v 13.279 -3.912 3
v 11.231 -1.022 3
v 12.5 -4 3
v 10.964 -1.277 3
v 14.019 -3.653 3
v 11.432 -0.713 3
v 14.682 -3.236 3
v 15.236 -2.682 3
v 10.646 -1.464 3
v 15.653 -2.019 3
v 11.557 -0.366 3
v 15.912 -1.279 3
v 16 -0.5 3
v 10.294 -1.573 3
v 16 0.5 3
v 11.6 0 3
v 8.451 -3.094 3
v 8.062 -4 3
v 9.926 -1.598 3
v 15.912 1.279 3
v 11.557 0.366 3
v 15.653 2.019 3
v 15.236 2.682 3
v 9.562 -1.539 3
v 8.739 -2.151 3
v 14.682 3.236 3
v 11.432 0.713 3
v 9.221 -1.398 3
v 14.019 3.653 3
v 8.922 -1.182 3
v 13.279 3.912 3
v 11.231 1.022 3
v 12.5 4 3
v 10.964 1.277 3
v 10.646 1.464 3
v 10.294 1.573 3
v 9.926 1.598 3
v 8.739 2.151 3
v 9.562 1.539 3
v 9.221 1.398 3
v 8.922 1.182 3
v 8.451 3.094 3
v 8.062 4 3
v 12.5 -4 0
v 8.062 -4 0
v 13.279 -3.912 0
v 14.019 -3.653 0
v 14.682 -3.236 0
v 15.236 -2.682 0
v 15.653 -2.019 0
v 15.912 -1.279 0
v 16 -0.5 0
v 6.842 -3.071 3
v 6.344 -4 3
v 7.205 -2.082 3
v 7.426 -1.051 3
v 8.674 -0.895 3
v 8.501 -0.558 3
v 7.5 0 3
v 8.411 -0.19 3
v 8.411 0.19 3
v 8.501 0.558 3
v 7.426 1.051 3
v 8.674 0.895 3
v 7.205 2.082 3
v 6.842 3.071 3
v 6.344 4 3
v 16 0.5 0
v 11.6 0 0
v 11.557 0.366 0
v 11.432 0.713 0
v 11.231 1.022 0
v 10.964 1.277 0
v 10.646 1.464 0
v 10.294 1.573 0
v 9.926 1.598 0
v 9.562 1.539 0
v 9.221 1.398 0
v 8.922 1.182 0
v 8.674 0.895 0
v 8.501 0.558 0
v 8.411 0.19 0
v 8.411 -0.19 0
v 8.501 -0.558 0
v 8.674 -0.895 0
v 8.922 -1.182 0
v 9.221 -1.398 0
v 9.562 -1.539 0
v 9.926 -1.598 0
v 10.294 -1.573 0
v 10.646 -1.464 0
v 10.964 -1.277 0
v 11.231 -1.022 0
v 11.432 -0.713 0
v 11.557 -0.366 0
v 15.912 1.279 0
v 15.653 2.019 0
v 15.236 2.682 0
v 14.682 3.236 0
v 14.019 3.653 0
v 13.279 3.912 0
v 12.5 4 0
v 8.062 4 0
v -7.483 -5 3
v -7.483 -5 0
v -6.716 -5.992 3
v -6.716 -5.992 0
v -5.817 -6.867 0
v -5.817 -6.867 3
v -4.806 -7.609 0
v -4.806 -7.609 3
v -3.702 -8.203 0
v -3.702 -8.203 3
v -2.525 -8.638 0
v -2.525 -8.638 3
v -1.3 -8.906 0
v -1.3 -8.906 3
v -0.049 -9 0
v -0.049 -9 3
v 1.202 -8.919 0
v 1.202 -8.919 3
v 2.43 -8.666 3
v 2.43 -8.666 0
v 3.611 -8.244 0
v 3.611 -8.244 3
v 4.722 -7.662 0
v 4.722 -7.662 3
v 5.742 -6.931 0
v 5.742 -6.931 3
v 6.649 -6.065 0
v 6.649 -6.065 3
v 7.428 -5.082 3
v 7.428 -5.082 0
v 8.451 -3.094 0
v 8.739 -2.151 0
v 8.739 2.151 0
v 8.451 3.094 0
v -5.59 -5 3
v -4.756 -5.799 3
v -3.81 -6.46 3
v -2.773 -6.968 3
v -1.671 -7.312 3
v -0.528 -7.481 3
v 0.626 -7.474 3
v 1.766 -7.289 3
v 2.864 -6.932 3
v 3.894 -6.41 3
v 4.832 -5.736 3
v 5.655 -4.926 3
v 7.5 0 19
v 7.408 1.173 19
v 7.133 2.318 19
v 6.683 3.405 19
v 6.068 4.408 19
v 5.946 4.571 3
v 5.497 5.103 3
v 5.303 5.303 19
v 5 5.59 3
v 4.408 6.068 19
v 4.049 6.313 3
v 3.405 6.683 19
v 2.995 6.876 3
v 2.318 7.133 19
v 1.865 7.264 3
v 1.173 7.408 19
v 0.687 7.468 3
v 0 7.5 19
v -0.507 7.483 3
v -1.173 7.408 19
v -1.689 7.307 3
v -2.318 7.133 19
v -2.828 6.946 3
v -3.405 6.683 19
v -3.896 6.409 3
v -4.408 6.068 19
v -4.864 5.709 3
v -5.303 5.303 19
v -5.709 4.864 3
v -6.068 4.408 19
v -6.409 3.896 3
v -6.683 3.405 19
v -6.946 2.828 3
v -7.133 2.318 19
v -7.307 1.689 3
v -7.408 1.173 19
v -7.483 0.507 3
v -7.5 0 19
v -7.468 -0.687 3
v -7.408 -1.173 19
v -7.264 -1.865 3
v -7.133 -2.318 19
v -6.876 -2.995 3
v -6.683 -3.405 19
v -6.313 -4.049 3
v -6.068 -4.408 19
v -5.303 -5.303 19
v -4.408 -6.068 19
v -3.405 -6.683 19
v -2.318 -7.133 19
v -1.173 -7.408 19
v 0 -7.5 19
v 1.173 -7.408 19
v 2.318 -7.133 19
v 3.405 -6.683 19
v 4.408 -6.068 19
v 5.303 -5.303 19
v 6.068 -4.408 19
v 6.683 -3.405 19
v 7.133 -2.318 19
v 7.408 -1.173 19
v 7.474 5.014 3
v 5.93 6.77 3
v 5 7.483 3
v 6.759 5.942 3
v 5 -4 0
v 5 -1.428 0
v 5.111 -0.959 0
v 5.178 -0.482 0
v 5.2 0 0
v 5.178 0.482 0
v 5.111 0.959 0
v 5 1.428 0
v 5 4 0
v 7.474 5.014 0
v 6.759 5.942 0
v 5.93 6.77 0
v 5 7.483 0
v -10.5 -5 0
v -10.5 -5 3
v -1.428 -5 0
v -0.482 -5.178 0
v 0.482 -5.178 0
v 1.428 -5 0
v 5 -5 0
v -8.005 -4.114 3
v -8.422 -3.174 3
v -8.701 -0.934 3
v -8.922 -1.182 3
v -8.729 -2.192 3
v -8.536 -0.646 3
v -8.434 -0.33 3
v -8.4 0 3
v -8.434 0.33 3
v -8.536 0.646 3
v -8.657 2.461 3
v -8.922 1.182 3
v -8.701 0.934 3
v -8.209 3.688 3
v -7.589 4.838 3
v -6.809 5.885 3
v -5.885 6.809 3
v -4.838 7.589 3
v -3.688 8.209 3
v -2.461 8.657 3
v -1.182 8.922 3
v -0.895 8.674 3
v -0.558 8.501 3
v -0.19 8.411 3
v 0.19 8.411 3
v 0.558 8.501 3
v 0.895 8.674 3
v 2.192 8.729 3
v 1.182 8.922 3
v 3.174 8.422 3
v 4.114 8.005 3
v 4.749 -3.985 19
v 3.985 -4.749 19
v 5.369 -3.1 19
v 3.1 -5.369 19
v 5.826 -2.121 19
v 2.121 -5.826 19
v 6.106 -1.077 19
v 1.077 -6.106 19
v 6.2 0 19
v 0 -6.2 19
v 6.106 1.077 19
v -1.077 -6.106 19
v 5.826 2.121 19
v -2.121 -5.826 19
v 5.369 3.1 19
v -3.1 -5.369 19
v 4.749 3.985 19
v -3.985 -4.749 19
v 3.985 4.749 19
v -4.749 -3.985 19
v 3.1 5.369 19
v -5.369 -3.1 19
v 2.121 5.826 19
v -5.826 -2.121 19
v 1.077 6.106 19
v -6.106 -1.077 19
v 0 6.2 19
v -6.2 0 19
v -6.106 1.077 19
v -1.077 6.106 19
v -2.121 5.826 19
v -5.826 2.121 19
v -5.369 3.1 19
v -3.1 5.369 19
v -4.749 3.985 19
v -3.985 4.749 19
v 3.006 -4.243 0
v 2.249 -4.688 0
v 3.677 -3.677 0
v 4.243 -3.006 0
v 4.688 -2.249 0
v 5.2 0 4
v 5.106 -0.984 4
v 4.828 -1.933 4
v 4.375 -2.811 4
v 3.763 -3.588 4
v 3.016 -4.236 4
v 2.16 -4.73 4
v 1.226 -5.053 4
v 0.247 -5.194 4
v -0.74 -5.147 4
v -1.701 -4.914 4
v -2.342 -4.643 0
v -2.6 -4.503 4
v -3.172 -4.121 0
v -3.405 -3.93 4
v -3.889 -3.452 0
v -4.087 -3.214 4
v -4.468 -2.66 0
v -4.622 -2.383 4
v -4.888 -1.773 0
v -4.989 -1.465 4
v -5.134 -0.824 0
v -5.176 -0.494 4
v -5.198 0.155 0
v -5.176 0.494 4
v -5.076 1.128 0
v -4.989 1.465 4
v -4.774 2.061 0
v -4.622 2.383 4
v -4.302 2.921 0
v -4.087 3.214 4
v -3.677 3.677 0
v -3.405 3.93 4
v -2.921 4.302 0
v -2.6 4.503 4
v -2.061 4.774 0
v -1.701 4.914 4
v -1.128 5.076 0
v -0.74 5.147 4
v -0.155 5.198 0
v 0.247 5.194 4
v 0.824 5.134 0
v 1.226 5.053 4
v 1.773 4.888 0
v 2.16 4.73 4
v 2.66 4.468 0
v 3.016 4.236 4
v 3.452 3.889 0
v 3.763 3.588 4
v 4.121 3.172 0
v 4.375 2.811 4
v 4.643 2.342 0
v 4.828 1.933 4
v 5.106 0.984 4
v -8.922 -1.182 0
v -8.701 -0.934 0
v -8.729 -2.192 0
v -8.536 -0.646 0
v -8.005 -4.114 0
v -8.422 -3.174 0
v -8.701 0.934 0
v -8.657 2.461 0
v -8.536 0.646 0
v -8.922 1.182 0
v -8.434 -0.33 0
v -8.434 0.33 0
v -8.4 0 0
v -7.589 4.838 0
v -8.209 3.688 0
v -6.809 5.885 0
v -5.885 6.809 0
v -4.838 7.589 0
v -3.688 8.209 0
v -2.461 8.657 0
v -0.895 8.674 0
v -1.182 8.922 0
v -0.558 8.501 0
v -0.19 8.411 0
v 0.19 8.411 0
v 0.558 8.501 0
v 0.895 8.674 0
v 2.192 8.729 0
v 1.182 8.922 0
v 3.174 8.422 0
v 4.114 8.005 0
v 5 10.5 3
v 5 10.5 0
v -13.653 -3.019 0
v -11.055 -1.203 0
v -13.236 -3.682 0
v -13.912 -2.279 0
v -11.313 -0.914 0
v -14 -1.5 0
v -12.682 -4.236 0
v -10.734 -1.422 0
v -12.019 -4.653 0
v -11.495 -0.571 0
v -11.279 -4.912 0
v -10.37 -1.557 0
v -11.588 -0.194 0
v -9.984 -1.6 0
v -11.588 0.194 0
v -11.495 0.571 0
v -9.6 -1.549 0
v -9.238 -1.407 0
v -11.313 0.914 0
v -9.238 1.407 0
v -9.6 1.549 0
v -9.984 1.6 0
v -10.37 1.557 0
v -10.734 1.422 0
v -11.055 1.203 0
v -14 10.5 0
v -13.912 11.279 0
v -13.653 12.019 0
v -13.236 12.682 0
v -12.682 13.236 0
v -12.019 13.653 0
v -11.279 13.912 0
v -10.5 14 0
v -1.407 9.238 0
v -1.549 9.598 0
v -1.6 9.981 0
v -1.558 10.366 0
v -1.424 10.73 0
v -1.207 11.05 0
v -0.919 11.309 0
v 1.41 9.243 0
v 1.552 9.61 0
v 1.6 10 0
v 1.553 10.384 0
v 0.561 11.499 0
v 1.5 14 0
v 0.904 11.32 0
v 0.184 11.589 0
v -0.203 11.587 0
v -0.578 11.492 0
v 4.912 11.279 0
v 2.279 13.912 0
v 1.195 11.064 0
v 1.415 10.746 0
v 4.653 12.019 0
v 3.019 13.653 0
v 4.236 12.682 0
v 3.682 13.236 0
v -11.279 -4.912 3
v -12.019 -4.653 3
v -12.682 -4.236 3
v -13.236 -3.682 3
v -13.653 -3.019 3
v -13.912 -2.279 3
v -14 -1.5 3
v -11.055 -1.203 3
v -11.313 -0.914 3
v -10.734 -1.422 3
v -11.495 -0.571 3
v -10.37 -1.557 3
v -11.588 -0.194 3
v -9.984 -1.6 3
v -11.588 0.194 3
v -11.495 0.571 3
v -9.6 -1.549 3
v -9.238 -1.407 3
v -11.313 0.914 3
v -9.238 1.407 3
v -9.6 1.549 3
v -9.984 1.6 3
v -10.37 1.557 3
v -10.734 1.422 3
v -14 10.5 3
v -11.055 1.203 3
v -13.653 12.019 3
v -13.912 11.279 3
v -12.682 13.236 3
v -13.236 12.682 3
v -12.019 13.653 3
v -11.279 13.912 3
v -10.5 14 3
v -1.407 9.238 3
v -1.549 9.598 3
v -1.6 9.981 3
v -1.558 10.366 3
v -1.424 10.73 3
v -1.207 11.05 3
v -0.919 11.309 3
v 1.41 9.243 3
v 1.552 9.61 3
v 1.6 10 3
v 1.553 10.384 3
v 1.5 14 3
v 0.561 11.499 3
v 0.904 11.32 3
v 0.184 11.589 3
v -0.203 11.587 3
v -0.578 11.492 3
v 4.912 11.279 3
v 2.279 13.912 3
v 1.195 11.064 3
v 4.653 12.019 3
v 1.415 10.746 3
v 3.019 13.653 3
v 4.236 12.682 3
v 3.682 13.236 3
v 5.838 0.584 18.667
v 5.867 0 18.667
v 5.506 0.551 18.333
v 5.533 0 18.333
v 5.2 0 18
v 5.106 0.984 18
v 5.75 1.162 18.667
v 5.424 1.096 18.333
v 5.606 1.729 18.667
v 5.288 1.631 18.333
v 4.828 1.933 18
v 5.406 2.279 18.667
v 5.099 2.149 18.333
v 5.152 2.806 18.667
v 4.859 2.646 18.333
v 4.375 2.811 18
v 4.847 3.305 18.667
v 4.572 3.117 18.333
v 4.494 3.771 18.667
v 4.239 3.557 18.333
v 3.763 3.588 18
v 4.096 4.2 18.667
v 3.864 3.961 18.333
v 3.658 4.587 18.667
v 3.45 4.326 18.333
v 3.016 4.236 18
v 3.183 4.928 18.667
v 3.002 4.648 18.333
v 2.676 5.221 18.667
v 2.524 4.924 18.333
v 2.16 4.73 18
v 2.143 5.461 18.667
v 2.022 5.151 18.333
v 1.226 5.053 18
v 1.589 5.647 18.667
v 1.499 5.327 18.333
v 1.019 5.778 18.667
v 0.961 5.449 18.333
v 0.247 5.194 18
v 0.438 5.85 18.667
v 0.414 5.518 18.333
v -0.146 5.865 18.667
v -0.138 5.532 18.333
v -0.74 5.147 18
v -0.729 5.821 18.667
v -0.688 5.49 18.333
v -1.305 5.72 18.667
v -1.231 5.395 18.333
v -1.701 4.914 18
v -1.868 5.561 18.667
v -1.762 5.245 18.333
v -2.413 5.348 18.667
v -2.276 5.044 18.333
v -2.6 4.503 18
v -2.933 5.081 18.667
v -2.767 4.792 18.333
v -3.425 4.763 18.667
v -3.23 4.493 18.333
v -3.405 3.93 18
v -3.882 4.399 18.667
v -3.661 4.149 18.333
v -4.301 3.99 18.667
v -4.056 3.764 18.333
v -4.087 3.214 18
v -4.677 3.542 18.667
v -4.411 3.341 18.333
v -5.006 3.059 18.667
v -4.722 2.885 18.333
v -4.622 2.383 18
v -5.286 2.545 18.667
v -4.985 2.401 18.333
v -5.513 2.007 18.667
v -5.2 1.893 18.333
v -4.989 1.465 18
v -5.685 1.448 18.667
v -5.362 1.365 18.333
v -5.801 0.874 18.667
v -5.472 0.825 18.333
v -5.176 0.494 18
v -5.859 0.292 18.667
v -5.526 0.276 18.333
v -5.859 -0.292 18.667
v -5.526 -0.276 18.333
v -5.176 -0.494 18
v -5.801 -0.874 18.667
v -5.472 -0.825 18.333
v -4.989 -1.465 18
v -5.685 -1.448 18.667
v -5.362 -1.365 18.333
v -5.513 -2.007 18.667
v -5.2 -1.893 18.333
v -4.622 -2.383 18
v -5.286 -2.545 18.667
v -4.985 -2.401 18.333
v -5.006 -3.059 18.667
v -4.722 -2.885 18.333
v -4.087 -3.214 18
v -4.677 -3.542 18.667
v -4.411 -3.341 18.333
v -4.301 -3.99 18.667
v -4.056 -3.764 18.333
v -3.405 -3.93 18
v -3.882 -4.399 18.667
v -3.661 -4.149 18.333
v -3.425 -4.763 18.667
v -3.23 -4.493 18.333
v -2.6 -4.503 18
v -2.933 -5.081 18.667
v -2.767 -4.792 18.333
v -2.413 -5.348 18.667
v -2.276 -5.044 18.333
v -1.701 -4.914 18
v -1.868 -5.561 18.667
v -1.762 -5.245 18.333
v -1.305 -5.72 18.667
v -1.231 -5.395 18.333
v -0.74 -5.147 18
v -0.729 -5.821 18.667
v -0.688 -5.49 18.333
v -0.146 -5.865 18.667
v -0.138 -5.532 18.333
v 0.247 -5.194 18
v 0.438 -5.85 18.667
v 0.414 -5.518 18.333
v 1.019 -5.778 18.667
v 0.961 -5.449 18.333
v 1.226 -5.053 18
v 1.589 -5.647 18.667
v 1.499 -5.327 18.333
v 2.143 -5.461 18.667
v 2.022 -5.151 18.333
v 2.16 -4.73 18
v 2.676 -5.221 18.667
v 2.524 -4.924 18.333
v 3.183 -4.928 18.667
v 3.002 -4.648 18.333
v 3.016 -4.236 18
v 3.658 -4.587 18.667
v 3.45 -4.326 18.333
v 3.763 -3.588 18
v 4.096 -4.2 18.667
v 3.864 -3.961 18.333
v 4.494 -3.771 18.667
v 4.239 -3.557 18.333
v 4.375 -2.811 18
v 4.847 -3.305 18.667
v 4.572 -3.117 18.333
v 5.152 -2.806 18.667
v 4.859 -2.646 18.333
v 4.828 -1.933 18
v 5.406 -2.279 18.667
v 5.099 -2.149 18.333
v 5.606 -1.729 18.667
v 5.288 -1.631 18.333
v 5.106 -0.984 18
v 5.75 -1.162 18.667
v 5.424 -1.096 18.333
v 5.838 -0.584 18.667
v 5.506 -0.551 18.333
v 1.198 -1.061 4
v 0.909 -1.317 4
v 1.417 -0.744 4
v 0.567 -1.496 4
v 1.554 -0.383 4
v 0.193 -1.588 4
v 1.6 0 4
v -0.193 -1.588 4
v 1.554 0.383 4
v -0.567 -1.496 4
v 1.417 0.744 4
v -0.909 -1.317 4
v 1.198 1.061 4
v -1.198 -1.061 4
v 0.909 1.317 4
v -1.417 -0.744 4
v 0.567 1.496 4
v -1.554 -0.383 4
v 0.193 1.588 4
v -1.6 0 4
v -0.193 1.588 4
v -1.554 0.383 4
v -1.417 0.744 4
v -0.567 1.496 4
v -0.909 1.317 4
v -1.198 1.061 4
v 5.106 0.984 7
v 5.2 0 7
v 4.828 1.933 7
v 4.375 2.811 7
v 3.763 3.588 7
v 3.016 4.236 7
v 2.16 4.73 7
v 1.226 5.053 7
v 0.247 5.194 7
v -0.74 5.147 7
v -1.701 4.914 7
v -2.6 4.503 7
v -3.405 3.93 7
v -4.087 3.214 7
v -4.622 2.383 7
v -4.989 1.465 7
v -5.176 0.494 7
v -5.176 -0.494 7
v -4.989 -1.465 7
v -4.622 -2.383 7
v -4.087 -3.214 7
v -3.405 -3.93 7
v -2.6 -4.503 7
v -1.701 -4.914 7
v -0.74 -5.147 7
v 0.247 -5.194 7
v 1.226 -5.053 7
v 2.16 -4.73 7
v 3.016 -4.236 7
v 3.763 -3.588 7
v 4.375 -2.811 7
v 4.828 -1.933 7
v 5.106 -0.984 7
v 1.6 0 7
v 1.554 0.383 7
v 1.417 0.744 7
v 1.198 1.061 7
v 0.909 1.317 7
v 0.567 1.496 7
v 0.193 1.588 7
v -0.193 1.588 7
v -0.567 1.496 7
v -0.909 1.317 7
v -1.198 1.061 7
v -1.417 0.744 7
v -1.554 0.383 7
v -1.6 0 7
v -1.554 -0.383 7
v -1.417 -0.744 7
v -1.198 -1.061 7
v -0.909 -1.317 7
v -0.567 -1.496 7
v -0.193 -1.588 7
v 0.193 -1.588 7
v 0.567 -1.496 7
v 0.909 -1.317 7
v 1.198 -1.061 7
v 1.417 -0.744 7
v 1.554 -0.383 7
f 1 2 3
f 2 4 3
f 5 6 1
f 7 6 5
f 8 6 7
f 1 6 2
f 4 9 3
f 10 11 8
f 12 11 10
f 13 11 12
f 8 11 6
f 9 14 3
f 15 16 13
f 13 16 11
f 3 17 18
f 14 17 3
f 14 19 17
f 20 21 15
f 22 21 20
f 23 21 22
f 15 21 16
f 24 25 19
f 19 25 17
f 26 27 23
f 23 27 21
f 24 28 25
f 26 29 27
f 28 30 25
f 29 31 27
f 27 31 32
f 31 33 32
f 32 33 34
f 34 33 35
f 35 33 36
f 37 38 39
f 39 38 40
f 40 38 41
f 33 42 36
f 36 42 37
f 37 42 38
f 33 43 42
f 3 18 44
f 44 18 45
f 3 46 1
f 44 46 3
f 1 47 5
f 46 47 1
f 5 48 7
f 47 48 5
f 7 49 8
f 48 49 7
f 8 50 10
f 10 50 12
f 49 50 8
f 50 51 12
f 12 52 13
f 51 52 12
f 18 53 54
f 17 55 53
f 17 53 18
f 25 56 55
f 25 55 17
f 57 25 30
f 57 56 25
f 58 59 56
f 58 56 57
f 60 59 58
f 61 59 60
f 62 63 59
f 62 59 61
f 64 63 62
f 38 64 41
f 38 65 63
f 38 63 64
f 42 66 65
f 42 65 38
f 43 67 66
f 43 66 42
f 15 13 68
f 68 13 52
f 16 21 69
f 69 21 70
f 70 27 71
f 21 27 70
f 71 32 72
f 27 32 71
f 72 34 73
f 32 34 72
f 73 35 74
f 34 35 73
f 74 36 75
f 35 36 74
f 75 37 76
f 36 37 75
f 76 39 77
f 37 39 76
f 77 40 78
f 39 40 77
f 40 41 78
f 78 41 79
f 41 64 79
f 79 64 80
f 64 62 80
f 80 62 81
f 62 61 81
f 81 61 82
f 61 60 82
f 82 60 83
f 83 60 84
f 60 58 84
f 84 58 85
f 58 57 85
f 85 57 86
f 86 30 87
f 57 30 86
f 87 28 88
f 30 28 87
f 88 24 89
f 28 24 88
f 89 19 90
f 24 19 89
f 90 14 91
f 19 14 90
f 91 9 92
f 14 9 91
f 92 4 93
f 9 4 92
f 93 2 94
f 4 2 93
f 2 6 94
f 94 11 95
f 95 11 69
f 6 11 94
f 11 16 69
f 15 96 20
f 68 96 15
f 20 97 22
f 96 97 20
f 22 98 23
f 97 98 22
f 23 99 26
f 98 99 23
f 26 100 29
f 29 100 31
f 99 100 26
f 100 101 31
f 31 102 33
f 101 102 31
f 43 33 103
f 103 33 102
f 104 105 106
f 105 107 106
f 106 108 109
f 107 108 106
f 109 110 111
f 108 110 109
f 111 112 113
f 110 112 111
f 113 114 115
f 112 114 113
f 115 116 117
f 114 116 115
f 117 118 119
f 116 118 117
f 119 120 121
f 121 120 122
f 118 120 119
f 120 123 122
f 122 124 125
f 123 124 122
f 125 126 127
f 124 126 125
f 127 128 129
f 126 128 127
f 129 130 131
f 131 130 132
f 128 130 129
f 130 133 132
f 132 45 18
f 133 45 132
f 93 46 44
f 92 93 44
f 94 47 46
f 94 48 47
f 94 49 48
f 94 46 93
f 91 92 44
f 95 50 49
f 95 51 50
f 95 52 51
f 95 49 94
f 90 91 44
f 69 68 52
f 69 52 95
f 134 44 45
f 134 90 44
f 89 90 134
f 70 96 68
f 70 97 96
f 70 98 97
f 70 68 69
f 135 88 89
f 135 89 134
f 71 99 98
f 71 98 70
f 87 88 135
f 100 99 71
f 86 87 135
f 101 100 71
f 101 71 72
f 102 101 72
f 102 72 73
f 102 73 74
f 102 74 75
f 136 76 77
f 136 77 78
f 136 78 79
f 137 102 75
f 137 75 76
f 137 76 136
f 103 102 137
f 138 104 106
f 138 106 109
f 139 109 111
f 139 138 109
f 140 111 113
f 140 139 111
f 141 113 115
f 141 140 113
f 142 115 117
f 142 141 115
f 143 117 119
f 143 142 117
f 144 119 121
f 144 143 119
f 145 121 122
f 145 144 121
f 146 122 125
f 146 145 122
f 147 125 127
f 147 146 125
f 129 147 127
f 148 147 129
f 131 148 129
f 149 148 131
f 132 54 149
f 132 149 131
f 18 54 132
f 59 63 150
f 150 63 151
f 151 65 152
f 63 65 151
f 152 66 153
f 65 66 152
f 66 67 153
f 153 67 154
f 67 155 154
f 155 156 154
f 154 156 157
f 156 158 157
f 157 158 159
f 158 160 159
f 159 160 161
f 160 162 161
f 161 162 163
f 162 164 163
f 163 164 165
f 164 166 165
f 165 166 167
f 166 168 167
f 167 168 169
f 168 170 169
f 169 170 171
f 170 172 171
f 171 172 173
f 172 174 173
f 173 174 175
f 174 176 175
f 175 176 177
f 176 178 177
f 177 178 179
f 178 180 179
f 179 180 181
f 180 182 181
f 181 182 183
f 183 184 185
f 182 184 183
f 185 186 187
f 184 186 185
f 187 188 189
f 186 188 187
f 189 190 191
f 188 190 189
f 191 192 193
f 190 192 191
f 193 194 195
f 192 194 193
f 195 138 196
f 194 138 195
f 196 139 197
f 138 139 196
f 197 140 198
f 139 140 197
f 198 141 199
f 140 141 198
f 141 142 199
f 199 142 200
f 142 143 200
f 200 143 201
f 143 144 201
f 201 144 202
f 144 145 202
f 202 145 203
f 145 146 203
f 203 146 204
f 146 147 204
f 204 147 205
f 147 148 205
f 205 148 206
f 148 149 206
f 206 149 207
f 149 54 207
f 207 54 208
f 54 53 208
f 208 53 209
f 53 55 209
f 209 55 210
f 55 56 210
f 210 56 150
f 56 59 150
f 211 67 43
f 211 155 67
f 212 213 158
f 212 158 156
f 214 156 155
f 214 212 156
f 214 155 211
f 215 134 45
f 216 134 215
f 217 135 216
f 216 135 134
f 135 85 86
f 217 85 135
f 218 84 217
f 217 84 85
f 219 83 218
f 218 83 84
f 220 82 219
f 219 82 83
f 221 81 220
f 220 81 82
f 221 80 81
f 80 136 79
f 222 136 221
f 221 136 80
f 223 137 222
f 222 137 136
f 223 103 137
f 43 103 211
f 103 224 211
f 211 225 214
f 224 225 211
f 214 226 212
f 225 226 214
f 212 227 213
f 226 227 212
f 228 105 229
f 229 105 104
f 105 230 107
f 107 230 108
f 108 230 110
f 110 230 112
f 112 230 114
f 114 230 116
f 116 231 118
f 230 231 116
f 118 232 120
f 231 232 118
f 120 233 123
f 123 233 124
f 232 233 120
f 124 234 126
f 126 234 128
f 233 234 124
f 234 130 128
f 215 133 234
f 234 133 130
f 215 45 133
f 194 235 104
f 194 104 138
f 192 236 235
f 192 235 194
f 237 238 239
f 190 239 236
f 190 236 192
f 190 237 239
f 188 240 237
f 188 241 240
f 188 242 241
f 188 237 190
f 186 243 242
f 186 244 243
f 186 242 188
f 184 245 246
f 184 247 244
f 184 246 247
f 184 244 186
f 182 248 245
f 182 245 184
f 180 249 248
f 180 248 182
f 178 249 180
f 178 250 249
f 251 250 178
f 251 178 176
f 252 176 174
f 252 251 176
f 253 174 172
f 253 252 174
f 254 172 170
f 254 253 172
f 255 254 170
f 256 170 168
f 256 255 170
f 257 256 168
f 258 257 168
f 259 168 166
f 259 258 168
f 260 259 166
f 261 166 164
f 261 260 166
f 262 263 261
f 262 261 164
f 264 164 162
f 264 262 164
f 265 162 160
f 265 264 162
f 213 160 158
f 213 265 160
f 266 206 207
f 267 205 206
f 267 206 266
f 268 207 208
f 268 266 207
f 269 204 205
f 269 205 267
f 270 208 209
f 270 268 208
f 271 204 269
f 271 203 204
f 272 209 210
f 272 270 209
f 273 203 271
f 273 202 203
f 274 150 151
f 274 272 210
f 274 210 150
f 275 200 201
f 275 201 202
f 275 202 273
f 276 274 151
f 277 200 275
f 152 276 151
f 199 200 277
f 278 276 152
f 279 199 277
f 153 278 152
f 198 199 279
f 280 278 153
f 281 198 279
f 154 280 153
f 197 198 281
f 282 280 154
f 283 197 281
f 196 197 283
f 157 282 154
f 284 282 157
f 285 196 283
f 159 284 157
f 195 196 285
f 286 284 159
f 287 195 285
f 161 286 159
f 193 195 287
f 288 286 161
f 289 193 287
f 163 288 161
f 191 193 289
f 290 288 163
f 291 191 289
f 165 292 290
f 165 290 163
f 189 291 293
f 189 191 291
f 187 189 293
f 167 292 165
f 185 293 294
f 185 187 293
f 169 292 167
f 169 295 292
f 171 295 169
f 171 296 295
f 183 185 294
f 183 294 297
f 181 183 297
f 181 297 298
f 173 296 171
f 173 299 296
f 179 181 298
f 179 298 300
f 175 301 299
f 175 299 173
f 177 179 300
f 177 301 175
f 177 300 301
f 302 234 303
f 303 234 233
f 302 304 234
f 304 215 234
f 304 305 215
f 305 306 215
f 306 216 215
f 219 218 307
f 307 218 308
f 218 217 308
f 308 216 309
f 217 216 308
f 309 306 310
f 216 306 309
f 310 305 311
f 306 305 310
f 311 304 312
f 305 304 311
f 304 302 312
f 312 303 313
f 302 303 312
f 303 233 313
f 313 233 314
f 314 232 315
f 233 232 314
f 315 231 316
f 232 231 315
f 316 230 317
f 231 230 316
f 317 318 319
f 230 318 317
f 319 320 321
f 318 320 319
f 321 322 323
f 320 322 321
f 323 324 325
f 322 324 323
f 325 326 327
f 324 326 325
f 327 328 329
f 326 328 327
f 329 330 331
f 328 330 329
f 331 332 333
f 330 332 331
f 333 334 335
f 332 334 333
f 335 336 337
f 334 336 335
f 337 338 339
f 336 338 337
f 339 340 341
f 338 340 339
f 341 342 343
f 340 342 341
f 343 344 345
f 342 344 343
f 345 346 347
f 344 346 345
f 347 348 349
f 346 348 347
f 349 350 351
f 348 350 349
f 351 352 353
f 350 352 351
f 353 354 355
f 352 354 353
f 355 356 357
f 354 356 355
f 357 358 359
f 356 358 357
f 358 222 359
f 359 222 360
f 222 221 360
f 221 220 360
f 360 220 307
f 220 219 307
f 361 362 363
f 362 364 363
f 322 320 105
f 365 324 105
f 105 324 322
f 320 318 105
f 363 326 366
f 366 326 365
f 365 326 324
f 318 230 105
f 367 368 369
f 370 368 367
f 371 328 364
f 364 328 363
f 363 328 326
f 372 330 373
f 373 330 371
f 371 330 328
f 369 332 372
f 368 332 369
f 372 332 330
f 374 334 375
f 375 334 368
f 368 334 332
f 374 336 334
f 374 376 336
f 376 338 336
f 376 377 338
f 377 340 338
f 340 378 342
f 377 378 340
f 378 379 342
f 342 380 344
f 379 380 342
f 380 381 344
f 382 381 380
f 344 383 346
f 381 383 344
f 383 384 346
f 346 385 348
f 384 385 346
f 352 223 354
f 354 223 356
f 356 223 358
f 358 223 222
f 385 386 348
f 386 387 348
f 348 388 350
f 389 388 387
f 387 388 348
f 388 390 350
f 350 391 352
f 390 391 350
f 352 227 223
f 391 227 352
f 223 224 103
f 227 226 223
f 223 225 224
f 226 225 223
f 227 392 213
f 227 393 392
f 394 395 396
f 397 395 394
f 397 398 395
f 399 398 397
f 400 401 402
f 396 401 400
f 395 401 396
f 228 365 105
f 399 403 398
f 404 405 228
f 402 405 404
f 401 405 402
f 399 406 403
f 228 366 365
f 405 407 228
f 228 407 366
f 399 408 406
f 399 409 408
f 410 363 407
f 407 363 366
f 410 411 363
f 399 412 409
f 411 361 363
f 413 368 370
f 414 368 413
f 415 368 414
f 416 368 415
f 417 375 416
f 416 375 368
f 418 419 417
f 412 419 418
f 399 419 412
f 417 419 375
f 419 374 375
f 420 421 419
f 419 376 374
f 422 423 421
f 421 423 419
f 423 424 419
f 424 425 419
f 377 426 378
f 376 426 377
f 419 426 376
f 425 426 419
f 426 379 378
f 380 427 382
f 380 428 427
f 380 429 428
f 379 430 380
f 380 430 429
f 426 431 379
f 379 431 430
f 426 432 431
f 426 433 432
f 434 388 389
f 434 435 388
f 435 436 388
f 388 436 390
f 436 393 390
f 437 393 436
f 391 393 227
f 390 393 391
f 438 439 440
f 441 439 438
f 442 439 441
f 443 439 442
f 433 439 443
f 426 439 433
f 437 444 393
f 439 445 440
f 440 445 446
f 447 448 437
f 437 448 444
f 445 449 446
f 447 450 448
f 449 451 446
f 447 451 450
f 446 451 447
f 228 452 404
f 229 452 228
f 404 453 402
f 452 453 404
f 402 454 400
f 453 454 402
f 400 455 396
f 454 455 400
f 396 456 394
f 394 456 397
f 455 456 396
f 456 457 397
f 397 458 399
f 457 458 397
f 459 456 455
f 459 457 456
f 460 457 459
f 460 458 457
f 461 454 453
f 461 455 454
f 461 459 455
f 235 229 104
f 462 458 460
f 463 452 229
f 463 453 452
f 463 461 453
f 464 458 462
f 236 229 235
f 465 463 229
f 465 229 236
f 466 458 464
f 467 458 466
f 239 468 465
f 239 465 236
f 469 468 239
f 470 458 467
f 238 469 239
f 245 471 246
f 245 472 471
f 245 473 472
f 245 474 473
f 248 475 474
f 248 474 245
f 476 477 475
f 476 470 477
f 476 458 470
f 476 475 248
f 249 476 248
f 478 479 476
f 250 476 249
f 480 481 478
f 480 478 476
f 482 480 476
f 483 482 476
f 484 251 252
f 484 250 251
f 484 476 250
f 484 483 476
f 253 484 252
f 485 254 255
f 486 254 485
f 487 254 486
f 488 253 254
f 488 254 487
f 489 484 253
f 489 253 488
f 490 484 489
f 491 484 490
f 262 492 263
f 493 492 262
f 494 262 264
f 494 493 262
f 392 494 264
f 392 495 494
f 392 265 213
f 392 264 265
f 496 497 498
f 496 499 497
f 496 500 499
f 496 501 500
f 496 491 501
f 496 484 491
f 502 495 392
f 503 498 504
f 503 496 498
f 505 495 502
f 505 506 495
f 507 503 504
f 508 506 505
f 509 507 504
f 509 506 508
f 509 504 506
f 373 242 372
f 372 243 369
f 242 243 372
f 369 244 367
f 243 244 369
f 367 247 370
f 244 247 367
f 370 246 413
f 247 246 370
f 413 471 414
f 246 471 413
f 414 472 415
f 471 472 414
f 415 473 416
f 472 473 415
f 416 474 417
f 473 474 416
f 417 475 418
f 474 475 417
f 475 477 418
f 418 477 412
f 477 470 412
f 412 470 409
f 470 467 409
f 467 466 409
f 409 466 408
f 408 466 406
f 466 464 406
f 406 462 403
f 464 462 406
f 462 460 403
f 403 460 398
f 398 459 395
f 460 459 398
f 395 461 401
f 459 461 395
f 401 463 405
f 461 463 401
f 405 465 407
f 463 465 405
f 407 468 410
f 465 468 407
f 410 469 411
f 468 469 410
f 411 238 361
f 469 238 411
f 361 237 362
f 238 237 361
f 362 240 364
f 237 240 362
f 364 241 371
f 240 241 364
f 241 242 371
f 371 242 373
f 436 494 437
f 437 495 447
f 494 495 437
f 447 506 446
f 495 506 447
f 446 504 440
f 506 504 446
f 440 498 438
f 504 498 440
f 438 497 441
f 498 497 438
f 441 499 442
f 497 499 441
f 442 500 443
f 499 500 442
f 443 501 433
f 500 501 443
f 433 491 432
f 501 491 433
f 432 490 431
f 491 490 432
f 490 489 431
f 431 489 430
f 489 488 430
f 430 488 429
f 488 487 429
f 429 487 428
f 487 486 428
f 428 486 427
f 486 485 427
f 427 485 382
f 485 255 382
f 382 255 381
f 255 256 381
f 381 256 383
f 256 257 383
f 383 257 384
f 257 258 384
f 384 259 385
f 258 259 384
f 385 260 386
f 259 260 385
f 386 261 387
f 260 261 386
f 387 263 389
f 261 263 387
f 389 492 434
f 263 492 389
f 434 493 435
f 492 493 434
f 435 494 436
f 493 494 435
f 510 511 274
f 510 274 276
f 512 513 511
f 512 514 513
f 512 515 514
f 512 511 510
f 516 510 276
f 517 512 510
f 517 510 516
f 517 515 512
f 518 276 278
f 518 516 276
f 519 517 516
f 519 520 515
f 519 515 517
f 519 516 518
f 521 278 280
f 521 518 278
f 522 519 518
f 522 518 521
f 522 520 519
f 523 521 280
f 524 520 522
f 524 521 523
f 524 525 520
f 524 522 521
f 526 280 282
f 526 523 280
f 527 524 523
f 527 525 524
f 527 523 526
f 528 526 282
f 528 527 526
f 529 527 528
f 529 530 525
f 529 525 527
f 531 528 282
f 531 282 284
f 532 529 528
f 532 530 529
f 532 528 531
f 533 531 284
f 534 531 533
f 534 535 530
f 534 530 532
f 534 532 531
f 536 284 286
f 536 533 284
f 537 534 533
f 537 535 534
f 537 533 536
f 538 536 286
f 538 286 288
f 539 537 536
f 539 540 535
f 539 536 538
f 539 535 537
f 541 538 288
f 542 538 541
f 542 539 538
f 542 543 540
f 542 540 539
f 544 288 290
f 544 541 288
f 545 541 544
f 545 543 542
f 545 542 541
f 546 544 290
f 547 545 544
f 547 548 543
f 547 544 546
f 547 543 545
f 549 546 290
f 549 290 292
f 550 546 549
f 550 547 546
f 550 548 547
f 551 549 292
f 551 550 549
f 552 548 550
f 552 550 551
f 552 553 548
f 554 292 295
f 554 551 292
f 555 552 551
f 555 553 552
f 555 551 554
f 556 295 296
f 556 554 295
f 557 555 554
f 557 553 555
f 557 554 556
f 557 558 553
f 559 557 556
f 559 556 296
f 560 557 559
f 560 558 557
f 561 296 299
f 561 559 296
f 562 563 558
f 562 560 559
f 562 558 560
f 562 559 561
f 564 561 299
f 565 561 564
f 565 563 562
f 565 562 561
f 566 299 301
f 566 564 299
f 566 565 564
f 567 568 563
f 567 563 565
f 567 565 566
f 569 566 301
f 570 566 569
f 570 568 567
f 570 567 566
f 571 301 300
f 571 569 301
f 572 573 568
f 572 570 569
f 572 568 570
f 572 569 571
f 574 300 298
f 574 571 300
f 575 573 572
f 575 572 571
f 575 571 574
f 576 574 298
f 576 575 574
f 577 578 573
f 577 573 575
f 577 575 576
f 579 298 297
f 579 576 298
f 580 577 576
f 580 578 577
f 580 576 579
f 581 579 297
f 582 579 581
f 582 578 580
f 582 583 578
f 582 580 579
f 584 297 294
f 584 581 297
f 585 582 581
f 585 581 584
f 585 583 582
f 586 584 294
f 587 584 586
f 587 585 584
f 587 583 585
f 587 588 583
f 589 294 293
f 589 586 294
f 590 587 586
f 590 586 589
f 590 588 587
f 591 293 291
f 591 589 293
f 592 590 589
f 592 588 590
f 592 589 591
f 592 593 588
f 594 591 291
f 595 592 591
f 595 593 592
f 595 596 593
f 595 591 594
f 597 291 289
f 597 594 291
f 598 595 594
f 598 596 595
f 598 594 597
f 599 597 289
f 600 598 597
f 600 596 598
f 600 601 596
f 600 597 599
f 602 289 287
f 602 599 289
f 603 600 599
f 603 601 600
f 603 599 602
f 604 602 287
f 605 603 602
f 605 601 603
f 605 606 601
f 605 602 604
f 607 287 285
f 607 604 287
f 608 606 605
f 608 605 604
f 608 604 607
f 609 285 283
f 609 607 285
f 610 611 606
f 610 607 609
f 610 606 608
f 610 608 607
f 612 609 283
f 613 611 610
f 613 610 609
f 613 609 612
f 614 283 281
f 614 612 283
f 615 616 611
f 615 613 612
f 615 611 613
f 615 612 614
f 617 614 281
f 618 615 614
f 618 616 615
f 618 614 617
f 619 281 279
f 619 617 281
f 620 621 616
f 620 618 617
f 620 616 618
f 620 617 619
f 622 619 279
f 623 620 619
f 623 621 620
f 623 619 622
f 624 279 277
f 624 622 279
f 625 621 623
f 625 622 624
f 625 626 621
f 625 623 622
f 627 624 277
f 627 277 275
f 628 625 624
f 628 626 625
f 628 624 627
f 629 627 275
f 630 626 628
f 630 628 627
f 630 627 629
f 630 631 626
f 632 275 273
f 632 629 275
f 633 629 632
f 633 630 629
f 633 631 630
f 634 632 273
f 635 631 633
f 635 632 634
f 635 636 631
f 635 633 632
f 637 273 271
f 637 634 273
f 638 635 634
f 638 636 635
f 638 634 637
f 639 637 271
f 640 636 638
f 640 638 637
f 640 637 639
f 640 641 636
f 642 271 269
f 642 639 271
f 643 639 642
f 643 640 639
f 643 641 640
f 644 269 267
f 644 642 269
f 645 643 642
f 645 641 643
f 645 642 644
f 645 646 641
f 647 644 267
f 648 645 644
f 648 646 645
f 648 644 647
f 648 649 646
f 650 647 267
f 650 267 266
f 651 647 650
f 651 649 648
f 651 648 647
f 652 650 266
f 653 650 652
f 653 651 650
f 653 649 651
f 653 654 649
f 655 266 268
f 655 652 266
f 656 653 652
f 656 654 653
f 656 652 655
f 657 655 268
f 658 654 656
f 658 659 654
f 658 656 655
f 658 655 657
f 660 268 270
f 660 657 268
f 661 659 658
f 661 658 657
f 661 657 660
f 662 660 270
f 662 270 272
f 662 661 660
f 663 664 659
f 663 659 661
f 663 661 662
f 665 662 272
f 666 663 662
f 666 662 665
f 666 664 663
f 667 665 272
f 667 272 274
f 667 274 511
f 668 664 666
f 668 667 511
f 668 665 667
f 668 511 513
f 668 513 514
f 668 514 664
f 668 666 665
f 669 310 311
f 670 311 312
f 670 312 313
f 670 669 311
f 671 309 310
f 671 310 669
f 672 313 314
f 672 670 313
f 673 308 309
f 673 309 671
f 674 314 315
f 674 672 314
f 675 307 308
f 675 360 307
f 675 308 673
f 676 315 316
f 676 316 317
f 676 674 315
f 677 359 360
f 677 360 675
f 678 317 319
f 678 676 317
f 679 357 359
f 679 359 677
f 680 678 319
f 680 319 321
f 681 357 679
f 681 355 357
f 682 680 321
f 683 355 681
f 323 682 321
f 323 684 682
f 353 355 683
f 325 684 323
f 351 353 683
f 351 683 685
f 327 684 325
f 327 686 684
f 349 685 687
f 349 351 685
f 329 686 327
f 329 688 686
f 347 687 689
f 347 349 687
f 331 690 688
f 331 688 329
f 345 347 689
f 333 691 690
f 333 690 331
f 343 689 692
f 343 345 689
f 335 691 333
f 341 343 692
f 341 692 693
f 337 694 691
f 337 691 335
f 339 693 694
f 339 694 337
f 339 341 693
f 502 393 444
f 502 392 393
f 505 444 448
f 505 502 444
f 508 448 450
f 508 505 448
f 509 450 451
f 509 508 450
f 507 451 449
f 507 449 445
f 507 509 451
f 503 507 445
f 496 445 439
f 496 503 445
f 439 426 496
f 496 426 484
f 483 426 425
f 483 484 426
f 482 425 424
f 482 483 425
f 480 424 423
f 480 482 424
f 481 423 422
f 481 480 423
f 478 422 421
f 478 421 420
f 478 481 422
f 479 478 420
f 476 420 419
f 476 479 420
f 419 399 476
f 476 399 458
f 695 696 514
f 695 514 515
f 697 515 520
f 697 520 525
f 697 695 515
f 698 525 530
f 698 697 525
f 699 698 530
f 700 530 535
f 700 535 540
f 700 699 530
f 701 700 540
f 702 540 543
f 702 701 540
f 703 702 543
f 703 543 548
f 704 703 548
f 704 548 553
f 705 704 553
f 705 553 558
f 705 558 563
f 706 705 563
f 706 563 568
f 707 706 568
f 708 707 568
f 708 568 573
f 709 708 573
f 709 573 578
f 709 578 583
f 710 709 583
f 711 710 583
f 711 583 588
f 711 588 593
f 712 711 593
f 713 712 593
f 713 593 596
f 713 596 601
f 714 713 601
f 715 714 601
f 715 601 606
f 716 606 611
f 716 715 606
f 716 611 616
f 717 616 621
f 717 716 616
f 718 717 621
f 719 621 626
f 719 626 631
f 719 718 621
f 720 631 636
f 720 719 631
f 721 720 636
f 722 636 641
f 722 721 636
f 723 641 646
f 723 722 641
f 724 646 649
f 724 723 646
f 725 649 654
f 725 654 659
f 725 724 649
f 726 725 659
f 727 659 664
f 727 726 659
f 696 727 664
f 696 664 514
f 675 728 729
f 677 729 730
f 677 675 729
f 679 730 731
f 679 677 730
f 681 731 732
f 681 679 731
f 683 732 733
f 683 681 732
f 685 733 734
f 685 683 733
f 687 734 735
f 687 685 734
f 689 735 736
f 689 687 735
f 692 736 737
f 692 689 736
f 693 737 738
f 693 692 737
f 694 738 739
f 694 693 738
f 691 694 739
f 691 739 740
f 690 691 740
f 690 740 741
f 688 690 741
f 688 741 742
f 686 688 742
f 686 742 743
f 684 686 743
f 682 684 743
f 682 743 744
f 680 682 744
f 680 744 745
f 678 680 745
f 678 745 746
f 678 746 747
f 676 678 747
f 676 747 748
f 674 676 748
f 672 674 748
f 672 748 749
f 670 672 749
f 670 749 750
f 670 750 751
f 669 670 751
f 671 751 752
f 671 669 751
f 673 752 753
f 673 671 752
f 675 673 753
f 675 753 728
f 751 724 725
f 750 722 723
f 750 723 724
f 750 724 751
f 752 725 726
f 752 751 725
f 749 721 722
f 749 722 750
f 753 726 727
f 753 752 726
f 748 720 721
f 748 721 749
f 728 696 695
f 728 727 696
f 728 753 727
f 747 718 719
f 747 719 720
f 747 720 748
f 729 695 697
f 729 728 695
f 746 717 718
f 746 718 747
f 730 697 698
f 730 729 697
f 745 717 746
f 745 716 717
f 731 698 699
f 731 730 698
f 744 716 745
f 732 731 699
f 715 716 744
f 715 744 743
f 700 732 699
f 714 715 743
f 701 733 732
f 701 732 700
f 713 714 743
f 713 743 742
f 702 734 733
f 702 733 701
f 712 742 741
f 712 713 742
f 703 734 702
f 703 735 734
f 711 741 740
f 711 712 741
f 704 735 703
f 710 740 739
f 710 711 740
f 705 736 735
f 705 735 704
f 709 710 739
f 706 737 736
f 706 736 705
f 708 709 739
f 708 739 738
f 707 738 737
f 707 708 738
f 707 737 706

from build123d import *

# Parameters (mm, degrees)
SKETCH_R        = 9
SKETCH_R_2      = 1.6
PAD_DEPTH       = 3
SKETCH001_R     = 7.5
SKETCH001_R_2   = 5.2
PAD001_DEPTH    = 16
SKETCH002_W     = 19
SKETCH002_H     = 19
PAD002_DEPTH    = 3
SKETCH003_R     = 1.6
POCKET_DEPTH    = 3.001
SKETCH004_W     = 11
SKETCH004_H     = 8
PAD003_DEPTH    = 3
SKETCH005_R     = 1.6
POCKET001_DEPTH = 3.001
SKETCH007_R     = 5.2
SKETCH007_R_2   = 1.6
PAD004_DEPTH    = 4
SKETCH008_R     = 5.2
POCKET002_DEPTH = 4
CHAMFER_SIZE    = 1
FILLET_R        = 3.5


with BuildPart() as part:
    # Sketch → Pad (new body)
    with BuildSketch(Plane.XY):
        Circle(SKETCH_R)
        Circle(SKETCH_R_2, mode=Mode.SUBTRACT)
    extrude(amount=PAD_DEPTH)

    # Sketch001 (on Face4 of Pad) → Pad001 (join)
    with BuildSketch(Plane.XY.offset(3)):
        Circle(SKETCH001_R)
        Circle(SKETCH001_R_2, mode=Mode.SUBTRACT)
    extrude(amount=PAD001_DEPTH)

    # Sketch002 (on Face2 of Pad001) → Pad002 (join)
    with BuildSketch(Plane(origin=(0, 0, 0), x_dir=(1, 0, 0), z_dir=(0, 0, -1))):
        with Locations((-4.5, -4.5)):
            Rectangle(SKETCH002_W, SKETCH002_H)
    extrude(amount=-PAD002_DEPTH)

    # Sketch003 (on Face10 of Pad002) → Pocket (cut, through all)
    with BuildSketch(Plane.XY.offset(3)):
        Circle(SKETCH003_R)
    extrude(amount=-POCKET_DEPTH, mode=Mode.SUBTRACT)

    # Sketch004 (on Face16 of Pocket) → Pad003 (join)
    with BuildSketch(Plane.XY.offset(3)):
        with Locations((10.5, 0)):
            Rectangle(SKETCH004_W, SKETCH004_H)
    extrude(amount=-PAD003_DEPTH)

    # Sketch005 → Pocket001 (cut, through all)
    with BuildSketch(Plane.XY.offset(3)):
        with Locations((0, 10)):
            Circle(SKETCH005_R)
        with Locations((-10, 0)):
            Circle(SKETCH005_R)
        with Locations((10, 0)):
            Circle(SKETCH005_R)
    extrude(amount=-POCKET001_DEPTH, mode=Mode.SUBTRACT)

    # Sketch007 → Pad004 (join)
    with BuildSketch(Plane.XY.offset(3)):
        Circle(SKETCH007_R)
        Circle(SKETCH007_R_2, mode=Mode.SUBTRACT)
    extrude(amount=PAD004_DEPTH)

    # Sketch008 (on Face3 of Pad004) → Pocket002 (cut)
    with BuildSketch(Plane(origin=(0, 0, 0), x_dir=(1, 0, 0), z_dir=(0, 0, -1))):
        Circle(SKETCH008_R)
    extrude(amount=-POCKET002_DEPTH, mode=Mode.SUBTRACT)

    # Chamfer
    chamfer_edges = [part.edges().sort_by_distance(p)[0] for p in [
        (-5.2, 0, 19),
    ]]
    chamfer(chamfer_edges, length=CHAMFER_SIZE)

    # Fillet
    fillet_edges = [part.edges().sort_by_distance(p)[0] for p in [
        (5, 14, 1.5),
        (16, 4, 1.5),
        (-14, 14, 1.5),
        (-14, -5, 1.5),
        (16, -4, 1.5),
    ]]
    fillet(fillet_edges, radius=FILLET_R)


solid = part.part
